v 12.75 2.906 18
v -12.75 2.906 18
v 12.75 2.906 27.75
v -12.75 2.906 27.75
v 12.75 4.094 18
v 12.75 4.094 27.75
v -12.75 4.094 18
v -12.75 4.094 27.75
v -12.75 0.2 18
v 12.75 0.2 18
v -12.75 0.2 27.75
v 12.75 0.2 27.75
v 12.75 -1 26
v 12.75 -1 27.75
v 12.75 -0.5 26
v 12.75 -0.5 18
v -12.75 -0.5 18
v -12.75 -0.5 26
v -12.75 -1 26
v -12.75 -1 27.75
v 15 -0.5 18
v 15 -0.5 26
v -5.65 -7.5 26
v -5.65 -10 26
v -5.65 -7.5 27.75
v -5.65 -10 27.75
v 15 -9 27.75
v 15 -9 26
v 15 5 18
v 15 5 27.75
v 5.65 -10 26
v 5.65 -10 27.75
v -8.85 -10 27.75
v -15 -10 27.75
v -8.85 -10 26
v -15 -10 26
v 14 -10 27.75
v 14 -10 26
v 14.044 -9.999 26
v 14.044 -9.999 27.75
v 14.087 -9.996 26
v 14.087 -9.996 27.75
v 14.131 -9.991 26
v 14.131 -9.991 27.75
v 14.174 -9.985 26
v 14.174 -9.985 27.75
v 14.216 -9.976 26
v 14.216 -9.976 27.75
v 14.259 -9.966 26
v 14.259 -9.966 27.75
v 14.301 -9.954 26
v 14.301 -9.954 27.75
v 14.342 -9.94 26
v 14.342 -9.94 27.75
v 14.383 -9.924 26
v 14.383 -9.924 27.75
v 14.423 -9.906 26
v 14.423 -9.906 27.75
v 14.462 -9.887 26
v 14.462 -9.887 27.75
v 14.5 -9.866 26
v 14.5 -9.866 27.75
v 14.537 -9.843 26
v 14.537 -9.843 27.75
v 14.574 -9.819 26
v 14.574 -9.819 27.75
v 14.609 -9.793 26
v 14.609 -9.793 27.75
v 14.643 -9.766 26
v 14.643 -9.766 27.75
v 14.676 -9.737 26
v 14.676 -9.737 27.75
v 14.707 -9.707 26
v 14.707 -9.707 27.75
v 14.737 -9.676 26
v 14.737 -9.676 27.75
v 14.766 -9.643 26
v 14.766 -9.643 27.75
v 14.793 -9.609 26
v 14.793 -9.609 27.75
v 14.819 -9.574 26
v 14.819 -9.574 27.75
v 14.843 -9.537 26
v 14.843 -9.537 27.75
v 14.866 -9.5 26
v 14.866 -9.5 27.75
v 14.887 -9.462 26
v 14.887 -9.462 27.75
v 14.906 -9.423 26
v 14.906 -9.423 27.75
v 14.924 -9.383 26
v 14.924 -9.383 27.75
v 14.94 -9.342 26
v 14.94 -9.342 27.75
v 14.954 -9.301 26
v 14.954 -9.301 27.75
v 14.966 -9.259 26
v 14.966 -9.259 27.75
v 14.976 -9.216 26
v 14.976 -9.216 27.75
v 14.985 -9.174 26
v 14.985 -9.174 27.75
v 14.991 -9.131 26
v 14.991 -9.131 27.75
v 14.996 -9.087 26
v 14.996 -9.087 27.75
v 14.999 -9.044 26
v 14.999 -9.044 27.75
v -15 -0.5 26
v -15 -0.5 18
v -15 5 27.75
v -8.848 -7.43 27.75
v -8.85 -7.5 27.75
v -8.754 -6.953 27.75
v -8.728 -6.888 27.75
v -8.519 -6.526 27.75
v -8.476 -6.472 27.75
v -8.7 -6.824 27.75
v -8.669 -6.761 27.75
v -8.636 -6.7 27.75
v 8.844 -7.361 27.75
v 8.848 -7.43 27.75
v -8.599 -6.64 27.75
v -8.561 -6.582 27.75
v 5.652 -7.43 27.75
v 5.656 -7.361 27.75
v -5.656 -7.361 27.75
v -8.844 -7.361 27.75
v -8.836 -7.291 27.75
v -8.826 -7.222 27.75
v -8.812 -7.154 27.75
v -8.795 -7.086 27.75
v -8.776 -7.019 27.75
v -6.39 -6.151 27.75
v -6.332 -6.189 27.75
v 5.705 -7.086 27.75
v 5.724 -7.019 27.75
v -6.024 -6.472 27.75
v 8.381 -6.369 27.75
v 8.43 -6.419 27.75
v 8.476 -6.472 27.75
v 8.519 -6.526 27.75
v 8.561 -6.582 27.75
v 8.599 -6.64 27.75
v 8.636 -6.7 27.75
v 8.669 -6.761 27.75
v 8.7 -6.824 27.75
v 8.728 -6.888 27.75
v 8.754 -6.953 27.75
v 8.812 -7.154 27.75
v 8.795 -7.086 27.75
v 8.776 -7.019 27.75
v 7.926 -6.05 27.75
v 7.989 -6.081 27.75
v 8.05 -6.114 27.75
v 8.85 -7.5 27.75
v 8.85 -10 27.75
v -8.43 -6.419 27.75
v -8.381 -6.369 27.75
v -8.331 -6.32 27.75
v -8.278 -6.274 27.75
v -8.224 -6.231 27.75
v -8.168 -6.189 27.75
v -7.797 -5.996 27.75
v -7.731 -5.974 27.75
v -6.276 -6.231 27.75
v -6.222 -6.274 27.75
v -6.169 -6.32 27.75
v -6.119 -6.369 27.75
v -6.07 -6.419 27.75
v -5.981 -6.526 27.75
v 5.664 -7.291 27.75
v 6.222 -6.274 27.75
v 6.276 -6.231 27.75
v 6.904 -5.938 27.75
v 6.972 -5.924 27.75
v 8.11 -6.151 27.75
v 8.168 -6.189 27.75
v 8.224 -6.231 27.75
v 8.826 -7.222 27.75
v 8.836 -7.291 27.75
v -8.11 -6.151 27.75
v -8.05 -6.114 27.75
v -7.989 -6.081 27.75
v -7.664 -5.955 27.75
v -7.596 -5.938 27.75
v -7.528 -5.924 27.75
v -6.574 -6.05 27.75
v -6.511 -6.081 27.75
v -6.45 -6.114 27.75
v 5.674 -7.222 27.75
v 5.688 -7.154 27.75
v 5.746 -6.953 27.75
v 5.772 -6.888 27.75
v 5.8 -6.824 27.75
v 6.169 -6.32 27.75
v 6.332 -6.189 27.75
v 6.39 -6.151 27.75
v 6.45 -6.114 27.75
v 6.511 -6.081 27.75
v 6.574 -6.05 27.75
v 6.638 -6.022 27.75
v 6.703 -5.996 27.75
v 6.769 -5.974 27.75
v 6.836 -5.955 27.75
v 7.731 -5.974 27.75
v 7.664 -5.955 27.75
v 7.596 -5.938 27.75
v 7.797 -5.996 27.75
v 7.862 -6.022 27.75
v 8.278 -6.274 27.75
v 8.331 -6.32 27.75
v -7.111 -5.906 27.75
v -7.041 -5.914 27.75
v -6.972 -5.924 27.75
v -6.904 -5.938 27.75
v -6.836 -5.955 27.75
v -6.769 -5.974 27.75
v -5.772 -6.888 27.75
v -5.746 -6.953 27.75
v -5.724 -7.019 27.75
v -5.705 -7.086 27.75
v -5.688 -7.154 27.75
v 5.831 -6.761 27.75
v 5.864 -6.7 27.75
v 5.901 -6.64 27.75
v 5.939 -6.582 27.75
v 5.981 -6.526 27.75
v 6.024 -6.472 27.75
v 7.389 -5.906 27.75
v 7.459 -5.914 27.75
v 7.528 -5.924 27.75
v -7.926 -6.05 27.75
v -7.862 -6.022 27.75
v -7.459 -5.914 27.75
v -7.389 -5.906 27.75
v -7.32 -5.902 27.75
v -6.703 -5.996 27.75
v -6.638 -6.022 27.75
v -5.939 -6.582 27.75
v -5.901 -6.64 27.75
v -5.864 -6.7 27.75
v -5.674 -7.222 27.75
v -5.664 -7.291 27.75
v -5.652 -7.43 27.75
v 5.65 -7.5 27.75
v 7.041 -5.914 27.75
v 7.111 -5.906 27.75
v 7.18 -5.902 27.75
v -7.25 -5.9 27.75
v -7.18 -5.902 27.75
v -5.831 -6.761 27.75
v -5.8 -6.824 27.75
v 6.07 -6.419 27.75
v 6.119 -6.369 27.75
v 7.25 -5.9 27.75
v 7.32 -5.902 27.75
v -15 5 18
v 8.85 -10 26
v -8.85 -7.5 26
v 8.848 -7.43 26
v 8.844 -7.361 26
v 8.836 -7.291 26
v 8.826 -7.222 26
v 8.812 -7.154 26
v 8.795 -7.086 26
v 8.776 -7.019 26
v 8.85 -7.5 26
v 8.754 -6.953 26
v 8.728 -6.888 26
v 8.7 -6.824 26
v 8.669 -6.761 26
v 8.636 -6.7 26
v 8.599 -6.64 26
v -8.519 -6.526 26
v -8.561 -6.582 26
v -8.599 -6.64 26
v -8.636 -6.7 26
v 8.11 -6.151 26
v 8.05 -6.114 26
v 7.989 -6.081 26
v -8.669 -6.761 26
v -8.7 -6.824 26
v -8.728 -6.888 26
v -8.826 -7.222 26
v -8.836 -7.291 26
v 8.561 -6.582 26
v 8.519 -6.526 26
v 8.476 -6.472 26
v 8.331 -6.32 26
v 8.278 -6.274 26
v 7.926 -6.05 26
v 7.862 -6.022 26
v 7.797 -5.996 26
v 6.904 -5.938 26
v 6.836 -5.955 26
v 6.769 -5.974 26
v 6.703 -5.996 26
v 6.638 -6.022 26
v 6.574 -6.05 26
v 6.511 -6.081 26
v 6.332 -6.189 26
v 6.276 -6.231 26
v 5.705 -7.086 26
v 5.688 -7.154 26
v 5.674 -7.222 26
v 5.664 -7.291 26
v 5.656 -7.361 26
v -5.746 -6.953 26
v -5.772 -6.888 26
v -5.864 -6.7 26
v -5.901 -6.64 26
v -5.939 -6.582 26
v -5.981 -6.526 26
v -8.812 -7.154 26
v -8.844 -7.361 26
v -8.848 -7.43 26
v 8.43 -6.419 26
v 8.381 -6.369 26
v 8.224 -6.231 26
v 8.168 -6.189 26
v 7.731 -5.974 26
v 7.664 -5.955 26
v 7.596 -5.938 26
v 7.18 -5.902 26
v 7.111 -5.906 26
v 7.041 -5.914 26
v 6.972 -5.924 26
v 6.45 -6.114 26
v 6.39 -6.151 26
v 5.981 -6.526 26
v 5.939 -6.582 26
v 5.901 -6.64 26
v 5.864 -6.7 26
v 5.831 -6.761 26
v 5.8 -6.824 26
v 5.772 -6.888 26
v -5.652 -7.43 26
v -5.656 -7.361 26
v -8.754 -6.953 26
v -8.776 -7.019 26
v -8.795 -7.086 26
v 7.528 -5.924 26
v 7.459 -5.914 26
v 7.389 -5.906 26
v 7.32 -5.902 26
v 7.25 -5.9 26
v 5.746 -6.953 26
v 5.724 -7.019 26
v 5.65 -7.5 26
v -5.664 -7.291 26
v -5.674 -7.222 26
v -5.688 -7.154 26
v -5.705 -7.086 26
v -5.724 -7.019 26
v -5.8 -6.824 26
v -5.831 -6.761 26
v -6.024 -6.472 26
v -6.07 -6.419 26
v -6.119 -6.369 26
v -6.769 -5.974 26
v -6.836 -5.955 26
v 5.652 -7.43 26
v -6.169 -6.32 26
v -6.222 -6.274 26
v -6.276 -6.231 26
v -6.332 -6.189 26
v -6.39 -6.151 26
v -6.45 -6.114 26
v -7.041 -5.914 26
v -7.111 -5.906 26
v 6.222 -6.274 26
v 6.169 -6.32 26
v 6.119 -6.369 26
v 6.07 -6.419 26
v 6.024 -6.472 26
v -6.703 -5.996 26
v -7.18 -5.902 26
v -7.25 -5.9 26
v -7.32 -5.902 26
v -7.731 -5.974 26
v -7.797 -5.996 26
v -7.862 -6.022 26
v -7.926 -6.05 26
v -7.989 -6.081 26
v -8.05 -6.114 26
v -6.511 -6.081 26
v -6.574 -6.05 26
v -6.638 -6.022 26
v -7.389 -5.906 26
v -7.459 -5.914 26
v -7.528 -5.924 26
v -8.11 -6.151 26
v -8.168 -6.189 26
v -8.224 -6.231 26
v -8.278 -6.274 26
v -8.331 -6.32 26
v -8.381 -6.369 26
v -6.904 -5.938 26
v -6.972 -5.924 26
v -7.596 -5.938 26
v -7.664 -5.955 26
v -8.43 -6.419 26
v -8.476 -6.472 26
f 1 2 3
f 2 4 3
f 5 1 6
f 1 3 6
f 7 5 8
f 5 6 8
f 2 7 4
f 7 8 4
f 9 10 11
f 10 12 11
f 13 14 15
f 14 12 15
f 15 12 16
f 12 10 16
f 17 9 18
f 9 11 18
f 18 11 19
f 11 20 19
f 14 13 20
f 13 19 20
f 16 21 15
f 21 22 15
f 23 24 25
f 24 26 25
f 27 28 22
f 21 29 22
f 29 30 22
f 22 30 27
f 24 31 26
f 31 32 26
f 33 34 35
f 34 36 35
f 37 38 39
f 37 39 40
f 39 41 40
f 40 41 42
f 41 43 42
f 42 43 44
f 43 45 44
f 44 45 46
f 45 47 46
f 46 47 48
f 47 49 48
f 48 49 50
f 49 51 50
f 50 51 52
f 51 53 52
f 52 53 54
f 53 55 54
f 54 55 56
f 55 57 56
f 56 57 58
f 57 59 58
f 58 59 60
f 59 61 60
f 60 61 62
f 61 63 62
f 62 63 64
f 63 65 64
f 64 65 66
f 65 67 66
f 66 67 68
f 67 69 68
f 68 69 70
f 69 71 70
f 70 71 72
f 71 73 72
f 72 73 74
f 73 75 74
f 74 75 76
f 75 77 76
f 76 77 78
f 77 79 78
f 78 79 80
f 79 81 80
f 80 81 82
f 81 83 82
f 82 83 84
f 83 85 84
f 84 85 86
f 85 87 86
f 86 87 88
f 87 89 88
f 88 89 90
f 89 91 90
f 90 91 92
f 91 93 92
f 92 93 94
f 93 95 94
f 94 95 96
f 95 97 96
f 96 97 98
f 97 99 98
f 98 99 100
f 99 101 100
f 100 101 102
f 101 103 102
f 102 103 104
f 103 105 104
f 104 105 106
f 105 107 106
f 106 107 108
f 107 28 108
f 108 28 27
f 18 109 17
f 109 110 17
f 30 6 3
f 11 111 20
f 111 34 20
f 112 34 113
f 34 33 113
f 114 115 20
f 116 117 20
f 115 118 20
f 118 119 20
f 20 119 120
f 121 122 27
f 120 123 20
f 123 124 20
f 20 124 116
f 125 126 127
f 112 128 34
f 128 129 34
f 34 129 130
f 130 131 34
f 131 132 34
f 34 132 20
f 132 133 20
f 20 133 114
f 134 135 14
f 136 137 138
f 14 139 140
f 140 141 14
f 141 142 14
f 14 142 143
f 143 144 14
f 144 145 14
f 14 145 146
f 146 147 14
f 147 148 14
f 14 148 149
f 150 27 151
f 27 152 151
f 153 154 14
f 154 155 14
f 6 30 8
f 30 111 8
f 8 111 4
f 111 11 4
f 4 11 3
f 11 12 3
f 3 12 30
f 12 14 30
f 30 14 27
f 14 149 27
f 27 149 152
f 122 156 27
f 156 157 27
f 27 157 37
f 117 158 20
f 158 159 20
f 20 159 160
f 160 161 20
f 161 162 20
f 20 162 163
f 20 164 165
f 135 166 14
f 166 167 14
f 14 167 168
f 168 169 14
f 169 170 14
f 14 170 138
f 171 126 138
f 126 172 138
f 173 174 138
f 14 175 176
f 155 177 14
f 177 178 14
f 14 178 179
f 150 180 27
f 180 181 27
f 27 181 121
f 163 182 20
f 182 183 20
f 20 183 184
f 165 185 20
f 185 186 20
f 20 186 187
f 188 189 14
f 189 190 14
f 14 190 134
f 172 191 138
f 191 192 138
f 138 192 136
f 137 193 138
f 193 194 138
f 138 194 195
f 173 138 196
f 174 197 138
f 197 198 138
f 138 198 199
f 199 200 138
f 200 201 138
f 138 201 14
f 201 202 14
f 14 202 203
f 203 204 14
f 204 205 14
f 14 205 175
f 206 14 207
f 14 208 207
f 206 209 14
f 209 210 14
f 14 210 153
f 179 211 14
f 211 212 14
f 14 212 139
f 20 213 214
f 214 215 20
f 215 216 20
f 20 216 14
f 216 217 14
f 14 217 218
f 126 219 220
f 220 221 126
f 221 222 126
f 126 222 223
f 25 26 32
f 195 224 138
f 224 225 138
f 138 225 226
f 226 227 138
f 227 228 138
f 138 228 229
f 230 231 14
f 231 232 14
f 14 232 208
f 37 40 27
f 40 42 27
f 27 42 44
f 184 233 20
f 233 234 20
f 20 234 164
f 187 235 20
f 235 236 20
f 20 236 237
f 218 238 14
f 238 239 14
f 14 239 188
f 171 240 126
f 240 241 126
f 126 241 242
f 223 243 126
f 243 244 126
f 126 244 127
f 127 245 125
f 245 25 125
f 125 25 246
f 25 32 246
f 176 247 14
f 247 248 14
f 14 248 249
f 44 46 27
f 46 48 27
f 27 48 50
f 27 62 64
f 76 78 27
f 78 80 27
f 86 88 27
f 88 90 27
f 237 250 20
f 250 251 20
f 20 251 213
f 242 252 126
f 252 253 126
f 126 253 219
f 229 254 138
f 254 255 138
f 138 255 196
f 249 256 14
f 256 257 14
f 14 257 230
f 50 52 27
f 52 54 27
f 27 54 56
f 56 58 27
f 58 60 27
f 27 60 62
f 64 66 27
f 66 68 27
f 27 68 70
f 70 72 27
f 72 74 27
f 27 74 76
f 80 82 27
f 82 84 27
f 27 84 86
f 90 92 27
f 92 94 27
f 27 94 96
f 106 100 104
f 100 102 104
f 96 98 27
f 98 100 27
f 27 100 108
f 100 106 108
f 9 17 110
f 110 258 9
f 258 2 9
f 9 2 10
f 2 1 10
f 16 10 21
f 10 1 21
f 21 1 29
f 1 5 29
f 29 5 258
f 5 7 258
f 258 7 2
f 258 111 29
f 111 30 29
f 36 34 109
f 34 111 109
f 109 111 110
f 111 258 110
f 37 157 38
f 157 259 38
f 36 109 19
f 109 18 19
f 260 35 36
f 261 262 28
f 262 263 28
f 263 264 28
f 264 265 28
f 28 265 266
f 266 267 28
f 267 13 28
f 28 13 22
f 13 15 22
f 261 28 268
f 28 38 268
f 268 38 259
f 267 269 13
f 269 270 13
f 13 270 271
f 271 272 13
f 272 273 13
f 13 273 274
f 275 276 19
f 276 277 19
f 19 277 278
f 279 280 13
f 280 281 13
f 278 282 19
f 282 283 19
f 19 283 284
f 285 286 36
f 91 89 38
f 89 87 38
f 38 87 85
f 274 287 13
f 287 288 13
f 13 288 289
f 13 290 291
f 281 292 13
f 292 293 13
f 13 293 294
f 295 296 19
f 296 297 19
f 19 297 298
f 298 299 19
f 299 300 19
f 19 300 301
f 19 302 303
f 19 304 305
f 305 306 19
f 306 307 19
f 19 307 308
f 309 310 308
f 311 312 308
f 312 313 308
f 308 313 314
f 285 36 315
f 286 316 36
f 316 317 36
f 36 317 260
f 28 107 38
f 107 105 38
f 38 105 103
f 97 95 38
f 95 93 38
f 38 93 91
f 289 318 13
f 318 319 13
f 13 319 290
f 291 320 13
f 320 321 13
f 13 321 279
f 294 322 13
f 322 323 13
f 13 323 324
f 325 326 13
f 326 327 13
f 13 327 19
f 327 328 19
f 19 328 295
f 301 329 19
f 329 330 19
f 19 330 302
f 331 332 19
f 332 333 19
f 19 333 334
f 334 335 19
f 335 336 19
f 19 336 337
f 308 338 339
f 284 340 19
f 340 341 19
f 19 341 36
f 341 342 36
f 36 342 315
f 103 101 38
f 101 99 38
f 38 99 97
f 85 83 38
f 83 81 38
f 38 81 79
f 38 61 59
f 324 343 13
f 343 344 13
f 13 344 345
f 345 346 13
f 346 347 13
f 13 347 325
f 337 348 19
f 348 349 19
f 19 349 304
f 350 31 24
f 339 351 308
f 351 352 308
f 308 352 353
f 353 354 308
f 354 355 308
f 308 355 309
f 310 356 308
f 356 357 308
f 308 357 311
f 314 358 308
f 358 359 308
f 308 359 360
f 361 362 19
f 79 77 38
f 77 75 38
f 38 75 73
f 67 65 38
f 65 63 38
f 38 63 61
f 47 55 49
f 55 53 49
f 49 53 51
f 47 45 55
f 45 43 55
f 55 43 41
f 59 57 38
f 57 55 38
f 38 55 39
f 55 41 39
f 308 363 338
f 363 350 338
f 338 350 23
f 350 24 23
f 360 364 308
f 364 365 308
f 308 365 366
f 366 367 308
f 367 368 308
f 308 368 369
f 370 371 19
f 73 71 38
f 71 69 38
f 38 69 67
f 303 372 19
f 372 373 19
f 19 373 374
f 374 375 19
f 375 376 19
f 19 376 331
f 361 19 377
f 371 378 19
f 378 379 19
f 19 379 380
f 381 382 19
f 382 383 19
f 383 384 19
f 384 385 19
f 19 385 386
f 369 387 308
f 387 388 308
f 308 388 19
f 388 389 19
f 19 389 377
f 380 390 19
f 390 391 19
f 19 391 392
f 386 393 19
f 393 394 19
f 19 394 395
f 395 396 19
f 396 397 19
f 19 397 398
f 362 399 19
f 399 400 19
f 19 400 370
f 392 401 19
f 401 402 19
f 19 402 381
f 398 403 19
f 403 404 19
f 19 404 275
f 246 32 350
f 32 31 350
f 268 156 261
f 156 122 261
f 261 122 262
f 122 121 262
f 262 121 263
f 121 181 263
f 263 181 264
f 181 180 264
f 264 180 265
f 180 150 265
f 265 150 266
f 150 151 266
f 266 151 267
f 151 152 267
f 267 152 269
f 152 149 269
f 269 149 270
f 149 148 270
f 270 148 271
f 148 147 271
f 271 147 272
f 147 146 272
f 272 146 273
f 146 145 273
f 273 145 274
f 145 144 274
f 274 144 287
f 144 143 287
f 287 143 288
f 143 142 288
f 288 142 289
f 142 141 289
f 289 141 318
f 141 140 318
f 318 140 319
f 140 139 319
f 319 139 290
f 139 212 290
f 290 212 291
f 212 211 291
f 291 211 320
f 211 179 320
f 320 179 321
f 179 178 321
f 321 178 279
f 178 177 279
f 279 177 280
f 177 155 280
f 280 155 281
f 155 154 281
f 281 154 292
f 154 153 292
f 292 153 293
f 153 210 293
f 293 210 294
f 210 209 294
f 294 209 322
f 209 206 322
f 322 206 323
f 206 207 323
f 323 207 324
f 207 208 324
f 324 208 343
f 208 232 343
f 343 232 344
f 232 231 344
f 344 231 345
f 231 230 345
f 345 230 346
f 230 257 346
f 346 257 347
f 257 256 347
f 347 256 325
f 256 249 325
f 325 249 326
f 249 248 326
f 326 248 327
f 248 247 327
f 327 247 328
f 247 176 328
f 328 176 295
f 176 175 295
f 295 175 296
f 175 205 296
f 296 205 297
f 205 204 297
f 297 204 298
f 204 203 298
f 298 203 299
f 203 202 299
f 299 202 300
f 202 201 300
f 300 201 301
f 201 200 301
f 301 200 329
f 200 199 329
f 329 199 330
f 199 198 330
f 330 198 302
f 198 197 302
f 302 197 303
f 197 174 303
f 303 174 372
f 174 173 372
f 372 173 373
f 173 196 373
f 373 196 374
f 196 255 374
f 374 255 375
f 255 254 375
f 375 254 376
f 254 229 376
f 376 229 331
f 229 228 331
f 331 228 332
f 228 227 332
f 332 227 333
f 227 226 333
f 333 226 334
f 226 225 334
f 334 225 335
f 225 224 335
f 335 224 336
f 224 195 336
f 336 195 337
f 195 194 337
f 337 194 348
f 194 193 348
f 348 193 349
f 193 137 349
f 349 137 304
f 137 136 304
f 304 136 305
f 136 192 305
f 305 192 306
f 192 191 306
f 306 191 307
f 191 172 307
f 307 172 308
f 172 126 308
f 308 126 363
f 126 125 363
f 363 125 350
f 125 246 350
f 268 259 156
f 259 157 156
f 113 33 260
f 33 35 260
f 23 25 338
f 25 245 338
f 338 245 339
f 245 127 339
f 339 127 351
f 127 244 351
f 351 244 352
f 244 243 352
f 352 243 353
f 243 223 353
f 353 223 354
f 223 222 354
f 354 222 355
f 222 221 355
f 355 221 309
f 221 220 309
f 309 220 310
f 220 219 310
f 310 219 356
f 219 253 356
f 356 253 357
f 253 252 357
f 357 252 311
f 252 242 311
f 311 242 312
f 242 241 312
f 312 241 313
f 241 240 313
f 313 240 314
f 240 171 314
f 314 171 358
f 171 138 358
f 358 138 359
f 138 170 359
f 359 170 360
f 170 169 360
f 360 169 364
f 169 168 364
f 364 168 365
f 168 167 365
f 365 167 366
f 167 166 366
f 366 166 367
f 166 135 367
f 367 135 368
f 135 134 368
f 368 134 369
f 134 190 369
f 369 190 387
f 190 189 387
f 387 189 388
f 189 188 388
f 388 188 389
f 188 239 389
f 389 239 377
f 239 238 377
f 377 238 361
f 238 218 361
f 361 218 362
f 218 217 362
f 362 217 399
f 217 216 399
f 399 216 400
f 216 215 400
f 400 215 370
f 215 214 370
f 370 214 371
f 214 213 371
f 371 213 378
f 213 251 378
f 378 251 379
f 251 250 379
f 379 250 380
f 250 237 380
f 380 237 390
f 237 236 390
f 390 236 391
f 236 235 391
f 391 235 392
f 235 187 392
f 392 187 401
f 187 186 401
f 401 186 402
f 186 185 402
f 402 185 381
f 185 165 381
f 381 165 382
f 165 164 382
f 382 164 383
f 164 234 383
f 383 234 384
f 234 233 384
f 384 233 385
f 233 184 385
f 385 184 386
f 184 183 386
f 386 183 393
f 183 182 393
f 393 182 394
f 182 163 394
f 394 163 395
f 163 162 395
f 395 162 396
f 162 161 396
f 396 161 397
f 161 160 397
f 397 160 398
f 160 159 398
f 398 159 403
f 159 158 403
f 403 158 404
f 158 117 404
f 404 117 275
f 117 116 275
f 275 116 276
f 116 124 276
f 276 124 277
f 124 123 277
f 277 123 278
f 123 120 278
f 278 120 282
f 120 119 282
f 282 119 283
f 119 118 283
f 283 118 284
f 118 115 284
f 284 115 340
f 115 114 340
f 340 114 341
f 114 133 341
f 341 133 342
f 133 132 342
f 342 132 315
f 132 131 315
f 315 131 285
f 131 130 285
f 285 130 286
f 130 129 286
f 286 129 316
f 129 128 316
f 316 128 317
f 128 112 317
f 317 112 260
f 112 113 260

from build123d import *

# Parameters (mm, degrees)
BOSS_EXTRUDE1_DEPTH      = 27.75
BOSS_EXTRUDE1_DEPTH_BACK = 27.75
SKETCH1_W                = 30
SKETCH1_H                = 15
SKETCH3_W                = 4
SKETCH3_H                = 18.5
CUT_EXTRUDE2_DEPTH       = 43.072110715
CUT_EXTRUDE5_DEPTH       = 3
CUT_EXTRUDE6_START       = -3
CUT_EXTRUDE6_DEPTH       = 3
FILLET1_R                = 1
SKETCH7_W                = 52
SKETCH7_H                = 19
CUT_EXTRUDE8_DEPTH       = 43.072110715
SKETCH8_W                = 25.5
SKETCH8_H                = 1.2
SKETCH8_H_2              = 1.187456806
CUT_EXTRUDE9_DEPTH       = 21.495426319


with BuildPart() as part:
    # Sketch1 → Boss-Extrude1 (new, two sides: drawn at the far end of the back side and taken through both)
    with BuildSketch(Plane.XY.offset(-BOSS_EXTRUDE1_DEPTH_BACK)):
        with Locations((0, -2.5)):
            Rectangle(SKETCH1_W, SKETCH1_H)
    extrude(amount=BOSS_EXTRUDE1_DEPTH + BOSS_EXTRUDE1_DEPTH_BACK)

    # Sketch3 → Cut-Extrude2 (cut, through all)
    with BuildSketch(Plane(origin=(15, 0, 0), x_dir=(0, 0, -1), z_dir=(1, 0, 0))):
        with Locations((24, -10)):
            Rectangle(SKETCH3_W, SKETCH3_H)
        with Locations((-24, -10)):
            Rectangle(SKETCH3_W, SKETCH3_H)
    extrude(amount=-CUT_EXTRUDE2_DEPTH, mode=Mode.SUBTRACT)

    # Sketch2 → Cut-Extrude5 (cut)
    with BuildSketch(Plane.XY.offset(27.75)):
        with BuildLine():
            Line((-8.85, -12.5), (-8.85, -7.5))
            ThreePointArc((-8.85, -7.5), (-7.25, -5.9), (-5.65, -7.5))
            Line((-5.65, -7.5), (-5.65, -12.5))
            ThreePointArc((-5.65, -12.5), (-7.25, -14.1), (-8.85, -12.5))
        make_face()
        with BuildLine():
            Line((5.65, -12.5), (5.65, -7.5))
            ThreePointArc((5.65, -7.5), (7.25, -5.9), (8.85, -7.5))
            Line((8.85, -7.5), (8.85, -12.5))
            ThreePointArc((8.85, -12.5), (7.25, -14.1), (5.65, -12.5))
        make_face()
    extrude(amount=-CUT_EXTRUDE5_DEPTH, mode=Mode.SUBTRACT)

    # Sketch5 → Cut-Extrude6 (cut)
    with BuildSketch(Plane(origin=(0, 0, -27.75), x_dir=(-1, 0, 0), z_dir=(0, 0, -1)).offset(CUT_EXTRUDE6_START)):
        with BuildLine():
            Line((-8.85, -12.5), (-8.85, -7.5))
            ThreePointArc((-8.85, -7.5), (-7.25, -5.9), (-5.65, -7.5))
            Line((-5.65, -7.5), (-5.65, -12.5))
            ThreePointArc((-5.65, -12.5), (-7.25, -14.1), (-8.85, -12.5))
        make_face()
        with BuildLine():
            Line((5.65, -12.5), (5.65, -7.5))
            ThreePointArc((5.65, -7.5), (7.25, -5.9), (8.85, -7.5))
            Line((8.85, -7.5), (8.85, -12.5))
            ThreePointArc((8.85, -12.5), (7.25, -14.1), (5.65, -12.5))
        make_face()
    extrude(amount=CUT_EXTRUDE6_DEPTH, mode=Mode.SUBTRACT)

    # Fillet1
    fillet1_edges = [part.edges().sort_by_distance(p)[0] for p in [
        (15, -10, 26.875),
    ]]
    fillet(fillet1_edges, radius=FILLET1_R)

    # Sketch7 → Cut-Extrude8 (cut, through all)
    with BuildSketch(Plane(origin=(15, 0, 0), x_dir=(0, 0, -1), z_dir=(1, 0, 0))):
        with Locations((0, -10)):
            Rectangle(SKETCH7_W, SKETCH7_H)
    extrude(amount=-CUT_EXTRUDE8_DEPTH, mode=Mode.SUBTRACT)

    # SurfaceCut1
    split(bisect_by=Plane.XY.offset(18), keep=Keep.TOP)

    # Sketch8 → Cut-Extrude9 (cut, through all)
    with BuildSketch(Plane.XY.offset(27.75)):
        with Locations((0, -0.4)):
            Rectangle(SKETCH8_W, SKETCH8_H)
        with Locations((0, 3.5)):
            Rectangle(SKETCH8_W, SKETCH8_H_2)
    extrude(amount=-CUT_EXTRUDE9_DEPTH, mode=Mode.SUBTRACT)


solid = part.part
